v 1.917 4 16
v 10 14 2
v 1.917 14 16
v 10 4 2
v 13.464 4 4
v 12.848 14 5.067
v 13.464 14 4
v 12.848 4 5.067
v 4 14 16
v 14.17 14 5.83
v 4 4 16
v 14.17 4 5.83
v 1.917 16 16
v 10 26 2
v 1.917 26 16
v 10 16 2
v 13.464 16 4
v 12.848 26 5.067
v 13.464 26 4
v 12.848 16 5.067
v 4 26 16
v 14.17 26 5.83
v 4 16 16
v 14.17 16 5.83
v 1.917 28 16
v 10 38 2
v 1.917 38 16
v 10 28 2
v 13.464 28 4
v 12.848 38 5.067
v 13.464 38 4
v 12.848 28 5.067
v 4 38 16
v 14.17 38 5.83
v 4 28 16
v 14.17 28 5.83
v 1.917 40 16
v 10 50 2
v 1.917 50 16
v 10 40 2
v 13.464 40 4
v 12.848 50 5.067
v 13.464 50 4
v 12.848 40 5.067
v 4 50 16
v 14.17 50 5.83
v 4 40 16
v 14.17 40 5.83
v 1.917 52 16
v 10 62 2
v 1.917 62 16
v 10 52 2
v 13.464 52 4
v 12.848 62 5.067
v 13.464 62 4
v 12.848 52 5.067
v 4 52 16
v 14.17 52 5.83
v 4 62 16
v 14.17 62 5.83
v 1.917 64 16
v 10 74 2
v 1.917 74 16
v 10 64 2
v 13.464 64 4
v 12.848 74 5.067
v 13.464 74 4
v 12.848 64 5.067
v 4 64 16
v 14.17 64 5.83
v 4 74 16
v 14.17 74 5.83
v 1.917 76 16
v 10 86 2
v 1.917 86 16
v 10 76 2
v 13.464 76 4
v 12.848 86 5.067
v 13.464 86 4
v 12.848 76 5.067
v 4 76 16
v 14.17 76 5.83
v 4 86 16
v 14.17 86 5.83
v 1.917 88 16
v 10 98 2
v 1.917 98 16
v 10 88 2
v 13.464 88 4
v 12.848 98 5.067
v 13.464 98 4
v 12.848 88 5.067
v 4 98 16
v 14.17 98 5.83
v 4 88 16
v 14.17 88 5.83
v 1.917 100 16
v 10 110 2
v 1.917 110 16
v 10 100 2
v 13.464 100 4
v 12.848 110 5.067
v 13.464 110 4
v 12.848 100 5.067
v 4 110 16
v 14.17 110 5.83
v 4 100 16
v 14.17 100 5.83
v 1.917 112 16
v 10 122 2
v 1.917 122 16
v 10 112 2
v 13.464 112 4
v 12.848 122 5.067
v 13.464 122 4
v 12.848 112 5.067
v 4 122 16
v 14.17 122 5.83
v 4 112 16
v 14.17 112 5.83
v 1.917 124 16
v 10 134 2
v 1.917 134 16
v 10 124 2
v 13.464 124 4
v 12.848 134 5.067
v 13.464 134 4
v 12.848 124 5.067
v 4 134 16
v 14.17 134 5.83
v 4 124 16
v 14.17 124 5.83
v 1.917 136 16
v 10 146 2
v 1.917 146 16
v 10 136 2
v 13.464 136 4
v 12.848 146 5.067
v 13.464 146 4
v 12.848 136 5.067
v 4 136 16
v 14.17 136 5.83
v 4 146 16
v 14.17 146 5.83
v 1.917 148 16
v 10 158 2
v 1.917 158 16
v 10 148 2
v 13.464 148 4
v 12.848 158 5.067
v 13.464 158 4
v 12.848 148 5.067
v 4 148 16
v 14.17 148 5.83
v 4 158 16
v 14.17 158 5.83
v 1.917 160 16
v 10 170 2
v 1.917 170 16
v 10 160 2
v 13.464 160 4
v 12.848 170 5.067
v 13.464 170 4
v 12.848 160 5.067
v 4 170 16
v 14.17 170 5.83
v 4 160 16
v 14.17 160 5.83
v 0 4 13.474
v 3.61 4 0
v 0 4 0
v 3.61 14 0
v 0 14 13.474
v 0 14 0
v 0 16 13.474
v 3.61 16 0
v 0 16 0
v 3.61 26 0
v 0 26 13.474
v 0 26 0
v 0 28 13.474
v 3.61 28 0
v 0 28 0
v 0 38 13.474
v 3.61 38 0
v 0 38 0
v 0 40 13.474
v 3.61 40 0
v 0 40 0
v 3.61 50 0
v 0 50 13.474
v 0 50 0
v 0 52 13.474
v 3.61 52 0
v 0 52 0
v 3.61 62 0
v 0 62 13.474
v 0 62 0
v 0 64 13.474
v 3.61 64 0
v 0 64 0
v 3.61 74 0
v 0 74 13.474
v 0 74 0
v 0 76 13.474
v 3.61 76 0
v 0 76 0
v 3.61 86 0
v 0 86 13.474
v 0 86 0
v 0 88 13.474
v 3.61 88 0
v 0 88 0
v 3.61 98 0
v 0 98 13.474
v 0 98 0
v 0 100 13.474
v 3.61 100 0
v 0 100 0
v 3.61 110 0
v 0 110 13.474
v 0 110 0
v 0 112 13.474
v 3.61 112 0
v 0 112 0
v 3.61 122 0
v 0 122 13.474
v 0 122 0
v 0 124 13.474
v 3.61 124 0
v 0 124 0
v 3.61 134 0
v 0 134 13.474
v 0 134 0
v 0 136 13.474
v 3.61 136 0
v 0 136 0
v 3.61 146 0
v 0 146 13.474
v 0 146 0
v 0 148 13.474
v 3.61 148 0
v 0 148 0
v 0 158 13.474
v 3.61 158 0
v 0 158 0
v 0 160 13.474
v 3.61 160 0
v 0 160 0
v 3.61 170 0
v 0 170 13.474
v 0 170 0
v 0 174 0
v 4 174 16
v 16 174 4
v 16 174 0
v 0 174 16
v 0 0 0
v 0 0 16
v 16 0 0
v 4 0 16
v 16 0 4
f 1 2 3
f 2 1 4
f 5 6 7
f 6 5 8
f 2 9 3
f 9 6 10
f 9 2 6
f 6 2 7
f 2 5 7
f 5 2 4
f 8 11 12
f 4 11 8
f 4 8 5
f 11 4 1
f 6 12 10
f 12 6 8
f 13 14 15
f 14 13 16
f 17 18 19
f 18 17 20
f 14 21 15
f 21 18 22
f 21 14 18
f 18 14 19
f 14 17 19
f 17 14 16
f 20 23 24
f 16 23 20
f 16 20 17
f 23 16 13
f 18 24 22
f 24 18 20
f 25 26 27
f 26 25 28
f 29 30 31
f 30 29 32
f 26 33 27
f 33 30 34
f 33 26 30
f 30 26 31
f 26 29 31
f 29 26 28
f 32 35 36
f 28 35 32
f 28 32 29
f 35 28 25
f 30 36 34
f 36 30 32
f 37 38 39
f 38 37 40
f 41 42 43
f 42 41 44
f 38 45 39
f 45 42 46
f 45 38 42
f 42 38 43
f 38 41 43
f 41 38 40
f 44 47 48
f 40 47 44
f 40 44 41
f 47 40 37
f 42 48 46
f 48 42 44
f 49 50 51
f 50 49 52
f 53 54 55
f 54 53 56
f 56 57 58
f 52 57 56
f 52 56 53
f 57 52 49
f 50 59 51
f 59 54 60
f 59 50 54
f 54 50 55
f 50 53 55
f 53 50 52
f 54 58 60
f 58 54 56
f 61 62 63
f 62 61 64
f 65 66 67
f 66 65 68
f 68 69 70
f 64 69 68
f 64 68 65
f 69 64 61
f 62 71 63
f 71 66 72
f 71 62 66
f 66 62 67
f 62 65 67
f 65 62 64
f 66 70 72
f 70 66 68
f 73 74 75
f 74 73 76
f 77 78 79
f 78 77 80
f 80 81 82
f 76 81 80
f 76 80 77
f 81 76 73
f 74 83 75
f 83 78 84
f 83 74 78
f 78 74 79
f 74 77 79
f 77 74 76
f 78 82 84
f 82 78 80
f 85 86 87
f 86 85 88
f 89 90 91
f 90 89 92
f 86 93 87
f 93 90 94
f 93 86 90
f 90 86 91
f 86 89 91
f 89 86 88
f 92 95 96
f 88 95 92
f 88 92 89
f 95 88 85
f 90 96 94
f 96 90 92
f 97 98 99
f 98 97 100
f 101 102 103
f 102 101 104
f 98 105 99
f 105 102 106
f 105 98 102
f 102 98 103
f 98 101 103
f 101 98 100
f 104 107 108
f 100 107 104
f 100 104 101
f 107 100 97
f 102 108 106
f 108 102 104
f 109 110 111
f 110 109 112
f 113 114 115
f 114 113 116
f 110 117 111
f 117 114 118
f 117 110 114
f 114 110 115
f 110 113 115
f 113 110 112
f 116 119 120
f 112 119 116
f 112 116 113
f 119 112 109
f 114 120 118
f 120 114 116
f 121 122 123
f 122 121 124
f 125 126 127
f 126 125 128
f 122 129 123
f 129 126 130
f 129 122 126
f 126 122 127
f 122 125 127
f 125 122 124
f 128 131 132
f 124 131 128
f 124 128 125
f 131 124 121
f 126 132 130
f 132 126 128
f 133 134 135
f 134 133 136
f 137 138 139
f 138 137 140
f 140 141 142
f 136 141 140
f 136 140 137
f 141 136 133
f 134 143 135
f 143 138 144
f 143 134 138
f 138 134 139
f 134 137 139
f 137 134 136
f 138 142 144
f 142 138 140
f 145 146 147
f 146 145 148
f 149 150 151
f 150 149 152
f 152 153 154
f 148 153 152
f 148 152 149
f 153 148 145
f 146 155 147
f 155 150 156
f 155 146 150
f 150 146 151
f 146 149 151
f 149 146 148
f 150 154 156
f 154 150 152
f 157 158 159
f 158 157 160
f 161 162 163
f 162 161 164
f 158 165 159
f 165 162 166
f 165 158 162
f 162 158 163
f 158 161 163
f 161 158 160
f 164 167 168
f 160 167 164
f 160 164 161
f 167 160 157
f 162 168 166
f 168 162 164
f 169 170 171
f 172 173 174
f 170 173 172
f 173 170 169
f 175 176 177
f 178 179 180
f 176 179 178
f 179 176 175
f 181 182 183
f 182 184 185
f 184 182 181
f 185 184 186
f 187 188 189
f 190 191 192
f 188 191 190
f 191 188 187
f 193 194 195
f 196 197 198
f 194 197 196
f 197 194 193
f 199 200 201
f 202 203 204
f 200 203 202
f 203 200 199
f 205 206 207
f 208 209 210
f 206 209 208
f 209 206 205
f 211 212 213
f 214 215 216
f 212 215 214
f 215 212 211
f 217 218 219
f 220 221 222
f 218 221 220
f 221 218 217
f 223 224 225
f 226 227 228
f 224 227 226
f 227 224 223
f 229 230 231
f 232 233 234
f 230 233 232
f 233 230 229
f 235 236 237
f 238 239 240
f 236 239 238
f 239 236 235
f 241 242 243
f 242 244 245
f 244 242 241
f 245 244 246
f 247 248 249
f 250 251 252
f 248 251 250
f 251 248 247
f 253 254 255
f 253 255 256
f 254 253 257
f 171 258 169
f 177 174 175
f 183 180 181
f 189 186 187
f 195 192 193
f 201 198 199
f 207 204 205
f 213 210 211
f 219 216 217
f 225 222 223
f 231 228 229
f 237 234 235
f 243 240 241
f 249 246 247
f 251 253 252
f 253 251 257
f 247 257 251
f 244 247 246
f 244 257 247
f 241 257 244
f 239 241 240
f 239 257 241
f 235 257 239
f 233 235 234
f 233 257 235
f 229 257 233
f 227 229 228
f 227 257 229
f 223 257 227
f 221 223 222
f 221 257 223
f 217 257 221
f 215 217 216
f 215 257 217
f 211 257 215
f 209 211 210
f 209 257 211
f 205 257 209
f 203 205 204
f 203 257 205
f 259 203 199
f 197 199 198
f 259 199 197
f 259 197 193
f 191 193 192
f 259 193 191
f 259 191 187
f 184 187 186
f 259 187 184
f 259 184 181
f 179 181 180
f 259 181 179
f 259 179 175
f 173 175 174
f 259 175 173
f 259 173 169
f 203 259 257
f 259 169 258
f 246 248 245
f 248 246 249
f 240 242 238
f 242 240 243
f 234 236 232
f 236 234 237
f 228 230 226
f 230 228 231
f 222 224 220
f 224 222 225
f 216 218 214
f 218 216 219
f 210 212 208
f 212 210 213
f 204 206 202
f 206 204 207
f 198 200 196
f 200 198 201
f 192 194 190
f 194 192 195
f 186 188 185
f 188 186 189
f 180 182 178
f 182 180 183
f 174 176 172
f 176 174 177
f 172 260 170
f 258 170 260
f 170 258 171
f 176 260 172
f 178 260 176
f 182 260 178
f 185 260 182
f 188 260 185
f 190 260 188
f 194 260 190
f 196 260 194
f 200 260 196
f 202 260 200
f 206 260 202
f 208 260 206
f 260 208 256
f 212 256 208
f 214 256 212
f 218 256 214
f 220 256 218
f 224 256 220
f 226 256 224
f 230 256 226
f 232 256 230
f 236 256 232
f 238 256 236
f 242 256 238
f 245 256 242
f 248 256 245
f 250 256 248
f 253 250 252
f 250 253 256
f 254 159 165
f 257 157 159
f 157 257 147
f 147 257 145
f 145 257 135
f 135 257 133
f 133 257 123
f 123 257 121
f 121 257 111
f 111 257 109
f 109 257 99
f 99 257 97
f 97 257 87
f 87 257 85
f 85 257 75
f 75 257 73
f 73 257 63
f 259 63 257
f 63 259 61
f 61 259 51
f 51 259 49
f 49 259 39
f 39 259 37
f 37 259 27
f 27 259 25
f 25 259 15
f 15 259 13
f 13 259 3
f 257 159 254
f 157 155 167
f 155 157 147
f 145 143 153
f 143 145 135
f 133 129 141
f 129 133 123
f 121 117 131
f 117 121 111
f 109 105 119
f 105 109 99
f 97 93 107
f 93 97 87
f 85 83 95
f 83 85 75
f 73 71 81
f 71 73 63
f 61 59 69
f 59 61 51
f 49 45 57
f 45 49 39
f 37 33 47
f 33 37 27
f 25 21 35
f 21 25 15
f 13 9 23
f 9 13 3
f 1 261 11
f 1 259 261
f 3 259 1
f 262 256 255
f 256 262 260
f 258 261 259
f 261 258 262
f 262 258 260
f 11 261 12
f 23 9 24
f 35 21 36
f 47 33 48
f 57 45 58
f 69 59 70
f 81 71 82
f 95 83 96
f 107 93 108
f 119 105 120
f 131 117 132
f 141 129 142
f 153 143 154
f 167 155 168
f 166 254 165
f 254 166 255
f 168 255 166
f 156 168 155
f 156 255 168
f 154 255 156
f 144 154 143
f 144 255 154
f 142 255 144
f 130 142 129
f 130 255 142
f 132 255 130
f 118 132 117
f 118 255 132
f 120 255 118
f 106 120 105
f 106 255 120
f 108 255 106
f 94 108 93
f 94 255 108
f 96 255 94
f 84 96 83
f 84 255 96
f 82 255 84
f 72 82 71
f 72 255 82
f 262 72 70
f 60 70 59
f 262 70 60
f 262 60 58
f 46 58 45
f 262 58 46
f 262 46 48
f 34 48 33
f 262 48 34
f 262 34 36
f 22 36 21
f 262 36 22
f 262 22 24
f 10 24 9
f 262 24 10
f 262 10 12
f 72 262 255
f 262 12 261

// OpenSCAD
holeCount = 14;
holeDepth = 4;
holeSpacing = 2;
holeWidth = 10;

standBorder = 4;
standSize = 20;

difference() {
  renderBody();
  renderFrontHoles();
  renderRearHoles();
}

module renderBody() {
  translate([0, holeCount * (holeWidth + holeSpacing) - holeSpacing + standBorder * 2, 0]) {
    rotate([90, 0, 0]) {
      linear_extrude(height=holeCount * (holeWidth + holeSpacing) - holeSpacing + standBorder * 2) {
        polygon(
          [
            [0, 0],
            [standSize - standBorder, 0],
            [standSize - standBorder, standBorder],
            [standBorder, standSize - standBorder],
            [0, standSize - standBorder],
          ]
        );
      }
    }
  }
}

module renderFrontHoles() {
  for (i = [0:holeCount - 1]) {
    translate([10, i * (holeWidth + holeSpacing) + standBorder, standBorder / 2]) rotate([0, -30, 0]) cube([holeDepth, holeWidth, standSize]);
    translate([11, i * (holeWidth + holeSpacing) + standBorder, standBorder]) rotate([0, -30, 0]) cube([holeDepth, holeWidth, standSize]);
  }
}

module renderRearHoles() {
  for (i = [0:holeCount - 1]) {
    translate([-3.6, i * (holeWidth + holeSpacing) + standBorder, -standBorder]) rotate([0, -15, 0]) cube([holeDepth * 2, holeWidth, standSize]);
  }
}
